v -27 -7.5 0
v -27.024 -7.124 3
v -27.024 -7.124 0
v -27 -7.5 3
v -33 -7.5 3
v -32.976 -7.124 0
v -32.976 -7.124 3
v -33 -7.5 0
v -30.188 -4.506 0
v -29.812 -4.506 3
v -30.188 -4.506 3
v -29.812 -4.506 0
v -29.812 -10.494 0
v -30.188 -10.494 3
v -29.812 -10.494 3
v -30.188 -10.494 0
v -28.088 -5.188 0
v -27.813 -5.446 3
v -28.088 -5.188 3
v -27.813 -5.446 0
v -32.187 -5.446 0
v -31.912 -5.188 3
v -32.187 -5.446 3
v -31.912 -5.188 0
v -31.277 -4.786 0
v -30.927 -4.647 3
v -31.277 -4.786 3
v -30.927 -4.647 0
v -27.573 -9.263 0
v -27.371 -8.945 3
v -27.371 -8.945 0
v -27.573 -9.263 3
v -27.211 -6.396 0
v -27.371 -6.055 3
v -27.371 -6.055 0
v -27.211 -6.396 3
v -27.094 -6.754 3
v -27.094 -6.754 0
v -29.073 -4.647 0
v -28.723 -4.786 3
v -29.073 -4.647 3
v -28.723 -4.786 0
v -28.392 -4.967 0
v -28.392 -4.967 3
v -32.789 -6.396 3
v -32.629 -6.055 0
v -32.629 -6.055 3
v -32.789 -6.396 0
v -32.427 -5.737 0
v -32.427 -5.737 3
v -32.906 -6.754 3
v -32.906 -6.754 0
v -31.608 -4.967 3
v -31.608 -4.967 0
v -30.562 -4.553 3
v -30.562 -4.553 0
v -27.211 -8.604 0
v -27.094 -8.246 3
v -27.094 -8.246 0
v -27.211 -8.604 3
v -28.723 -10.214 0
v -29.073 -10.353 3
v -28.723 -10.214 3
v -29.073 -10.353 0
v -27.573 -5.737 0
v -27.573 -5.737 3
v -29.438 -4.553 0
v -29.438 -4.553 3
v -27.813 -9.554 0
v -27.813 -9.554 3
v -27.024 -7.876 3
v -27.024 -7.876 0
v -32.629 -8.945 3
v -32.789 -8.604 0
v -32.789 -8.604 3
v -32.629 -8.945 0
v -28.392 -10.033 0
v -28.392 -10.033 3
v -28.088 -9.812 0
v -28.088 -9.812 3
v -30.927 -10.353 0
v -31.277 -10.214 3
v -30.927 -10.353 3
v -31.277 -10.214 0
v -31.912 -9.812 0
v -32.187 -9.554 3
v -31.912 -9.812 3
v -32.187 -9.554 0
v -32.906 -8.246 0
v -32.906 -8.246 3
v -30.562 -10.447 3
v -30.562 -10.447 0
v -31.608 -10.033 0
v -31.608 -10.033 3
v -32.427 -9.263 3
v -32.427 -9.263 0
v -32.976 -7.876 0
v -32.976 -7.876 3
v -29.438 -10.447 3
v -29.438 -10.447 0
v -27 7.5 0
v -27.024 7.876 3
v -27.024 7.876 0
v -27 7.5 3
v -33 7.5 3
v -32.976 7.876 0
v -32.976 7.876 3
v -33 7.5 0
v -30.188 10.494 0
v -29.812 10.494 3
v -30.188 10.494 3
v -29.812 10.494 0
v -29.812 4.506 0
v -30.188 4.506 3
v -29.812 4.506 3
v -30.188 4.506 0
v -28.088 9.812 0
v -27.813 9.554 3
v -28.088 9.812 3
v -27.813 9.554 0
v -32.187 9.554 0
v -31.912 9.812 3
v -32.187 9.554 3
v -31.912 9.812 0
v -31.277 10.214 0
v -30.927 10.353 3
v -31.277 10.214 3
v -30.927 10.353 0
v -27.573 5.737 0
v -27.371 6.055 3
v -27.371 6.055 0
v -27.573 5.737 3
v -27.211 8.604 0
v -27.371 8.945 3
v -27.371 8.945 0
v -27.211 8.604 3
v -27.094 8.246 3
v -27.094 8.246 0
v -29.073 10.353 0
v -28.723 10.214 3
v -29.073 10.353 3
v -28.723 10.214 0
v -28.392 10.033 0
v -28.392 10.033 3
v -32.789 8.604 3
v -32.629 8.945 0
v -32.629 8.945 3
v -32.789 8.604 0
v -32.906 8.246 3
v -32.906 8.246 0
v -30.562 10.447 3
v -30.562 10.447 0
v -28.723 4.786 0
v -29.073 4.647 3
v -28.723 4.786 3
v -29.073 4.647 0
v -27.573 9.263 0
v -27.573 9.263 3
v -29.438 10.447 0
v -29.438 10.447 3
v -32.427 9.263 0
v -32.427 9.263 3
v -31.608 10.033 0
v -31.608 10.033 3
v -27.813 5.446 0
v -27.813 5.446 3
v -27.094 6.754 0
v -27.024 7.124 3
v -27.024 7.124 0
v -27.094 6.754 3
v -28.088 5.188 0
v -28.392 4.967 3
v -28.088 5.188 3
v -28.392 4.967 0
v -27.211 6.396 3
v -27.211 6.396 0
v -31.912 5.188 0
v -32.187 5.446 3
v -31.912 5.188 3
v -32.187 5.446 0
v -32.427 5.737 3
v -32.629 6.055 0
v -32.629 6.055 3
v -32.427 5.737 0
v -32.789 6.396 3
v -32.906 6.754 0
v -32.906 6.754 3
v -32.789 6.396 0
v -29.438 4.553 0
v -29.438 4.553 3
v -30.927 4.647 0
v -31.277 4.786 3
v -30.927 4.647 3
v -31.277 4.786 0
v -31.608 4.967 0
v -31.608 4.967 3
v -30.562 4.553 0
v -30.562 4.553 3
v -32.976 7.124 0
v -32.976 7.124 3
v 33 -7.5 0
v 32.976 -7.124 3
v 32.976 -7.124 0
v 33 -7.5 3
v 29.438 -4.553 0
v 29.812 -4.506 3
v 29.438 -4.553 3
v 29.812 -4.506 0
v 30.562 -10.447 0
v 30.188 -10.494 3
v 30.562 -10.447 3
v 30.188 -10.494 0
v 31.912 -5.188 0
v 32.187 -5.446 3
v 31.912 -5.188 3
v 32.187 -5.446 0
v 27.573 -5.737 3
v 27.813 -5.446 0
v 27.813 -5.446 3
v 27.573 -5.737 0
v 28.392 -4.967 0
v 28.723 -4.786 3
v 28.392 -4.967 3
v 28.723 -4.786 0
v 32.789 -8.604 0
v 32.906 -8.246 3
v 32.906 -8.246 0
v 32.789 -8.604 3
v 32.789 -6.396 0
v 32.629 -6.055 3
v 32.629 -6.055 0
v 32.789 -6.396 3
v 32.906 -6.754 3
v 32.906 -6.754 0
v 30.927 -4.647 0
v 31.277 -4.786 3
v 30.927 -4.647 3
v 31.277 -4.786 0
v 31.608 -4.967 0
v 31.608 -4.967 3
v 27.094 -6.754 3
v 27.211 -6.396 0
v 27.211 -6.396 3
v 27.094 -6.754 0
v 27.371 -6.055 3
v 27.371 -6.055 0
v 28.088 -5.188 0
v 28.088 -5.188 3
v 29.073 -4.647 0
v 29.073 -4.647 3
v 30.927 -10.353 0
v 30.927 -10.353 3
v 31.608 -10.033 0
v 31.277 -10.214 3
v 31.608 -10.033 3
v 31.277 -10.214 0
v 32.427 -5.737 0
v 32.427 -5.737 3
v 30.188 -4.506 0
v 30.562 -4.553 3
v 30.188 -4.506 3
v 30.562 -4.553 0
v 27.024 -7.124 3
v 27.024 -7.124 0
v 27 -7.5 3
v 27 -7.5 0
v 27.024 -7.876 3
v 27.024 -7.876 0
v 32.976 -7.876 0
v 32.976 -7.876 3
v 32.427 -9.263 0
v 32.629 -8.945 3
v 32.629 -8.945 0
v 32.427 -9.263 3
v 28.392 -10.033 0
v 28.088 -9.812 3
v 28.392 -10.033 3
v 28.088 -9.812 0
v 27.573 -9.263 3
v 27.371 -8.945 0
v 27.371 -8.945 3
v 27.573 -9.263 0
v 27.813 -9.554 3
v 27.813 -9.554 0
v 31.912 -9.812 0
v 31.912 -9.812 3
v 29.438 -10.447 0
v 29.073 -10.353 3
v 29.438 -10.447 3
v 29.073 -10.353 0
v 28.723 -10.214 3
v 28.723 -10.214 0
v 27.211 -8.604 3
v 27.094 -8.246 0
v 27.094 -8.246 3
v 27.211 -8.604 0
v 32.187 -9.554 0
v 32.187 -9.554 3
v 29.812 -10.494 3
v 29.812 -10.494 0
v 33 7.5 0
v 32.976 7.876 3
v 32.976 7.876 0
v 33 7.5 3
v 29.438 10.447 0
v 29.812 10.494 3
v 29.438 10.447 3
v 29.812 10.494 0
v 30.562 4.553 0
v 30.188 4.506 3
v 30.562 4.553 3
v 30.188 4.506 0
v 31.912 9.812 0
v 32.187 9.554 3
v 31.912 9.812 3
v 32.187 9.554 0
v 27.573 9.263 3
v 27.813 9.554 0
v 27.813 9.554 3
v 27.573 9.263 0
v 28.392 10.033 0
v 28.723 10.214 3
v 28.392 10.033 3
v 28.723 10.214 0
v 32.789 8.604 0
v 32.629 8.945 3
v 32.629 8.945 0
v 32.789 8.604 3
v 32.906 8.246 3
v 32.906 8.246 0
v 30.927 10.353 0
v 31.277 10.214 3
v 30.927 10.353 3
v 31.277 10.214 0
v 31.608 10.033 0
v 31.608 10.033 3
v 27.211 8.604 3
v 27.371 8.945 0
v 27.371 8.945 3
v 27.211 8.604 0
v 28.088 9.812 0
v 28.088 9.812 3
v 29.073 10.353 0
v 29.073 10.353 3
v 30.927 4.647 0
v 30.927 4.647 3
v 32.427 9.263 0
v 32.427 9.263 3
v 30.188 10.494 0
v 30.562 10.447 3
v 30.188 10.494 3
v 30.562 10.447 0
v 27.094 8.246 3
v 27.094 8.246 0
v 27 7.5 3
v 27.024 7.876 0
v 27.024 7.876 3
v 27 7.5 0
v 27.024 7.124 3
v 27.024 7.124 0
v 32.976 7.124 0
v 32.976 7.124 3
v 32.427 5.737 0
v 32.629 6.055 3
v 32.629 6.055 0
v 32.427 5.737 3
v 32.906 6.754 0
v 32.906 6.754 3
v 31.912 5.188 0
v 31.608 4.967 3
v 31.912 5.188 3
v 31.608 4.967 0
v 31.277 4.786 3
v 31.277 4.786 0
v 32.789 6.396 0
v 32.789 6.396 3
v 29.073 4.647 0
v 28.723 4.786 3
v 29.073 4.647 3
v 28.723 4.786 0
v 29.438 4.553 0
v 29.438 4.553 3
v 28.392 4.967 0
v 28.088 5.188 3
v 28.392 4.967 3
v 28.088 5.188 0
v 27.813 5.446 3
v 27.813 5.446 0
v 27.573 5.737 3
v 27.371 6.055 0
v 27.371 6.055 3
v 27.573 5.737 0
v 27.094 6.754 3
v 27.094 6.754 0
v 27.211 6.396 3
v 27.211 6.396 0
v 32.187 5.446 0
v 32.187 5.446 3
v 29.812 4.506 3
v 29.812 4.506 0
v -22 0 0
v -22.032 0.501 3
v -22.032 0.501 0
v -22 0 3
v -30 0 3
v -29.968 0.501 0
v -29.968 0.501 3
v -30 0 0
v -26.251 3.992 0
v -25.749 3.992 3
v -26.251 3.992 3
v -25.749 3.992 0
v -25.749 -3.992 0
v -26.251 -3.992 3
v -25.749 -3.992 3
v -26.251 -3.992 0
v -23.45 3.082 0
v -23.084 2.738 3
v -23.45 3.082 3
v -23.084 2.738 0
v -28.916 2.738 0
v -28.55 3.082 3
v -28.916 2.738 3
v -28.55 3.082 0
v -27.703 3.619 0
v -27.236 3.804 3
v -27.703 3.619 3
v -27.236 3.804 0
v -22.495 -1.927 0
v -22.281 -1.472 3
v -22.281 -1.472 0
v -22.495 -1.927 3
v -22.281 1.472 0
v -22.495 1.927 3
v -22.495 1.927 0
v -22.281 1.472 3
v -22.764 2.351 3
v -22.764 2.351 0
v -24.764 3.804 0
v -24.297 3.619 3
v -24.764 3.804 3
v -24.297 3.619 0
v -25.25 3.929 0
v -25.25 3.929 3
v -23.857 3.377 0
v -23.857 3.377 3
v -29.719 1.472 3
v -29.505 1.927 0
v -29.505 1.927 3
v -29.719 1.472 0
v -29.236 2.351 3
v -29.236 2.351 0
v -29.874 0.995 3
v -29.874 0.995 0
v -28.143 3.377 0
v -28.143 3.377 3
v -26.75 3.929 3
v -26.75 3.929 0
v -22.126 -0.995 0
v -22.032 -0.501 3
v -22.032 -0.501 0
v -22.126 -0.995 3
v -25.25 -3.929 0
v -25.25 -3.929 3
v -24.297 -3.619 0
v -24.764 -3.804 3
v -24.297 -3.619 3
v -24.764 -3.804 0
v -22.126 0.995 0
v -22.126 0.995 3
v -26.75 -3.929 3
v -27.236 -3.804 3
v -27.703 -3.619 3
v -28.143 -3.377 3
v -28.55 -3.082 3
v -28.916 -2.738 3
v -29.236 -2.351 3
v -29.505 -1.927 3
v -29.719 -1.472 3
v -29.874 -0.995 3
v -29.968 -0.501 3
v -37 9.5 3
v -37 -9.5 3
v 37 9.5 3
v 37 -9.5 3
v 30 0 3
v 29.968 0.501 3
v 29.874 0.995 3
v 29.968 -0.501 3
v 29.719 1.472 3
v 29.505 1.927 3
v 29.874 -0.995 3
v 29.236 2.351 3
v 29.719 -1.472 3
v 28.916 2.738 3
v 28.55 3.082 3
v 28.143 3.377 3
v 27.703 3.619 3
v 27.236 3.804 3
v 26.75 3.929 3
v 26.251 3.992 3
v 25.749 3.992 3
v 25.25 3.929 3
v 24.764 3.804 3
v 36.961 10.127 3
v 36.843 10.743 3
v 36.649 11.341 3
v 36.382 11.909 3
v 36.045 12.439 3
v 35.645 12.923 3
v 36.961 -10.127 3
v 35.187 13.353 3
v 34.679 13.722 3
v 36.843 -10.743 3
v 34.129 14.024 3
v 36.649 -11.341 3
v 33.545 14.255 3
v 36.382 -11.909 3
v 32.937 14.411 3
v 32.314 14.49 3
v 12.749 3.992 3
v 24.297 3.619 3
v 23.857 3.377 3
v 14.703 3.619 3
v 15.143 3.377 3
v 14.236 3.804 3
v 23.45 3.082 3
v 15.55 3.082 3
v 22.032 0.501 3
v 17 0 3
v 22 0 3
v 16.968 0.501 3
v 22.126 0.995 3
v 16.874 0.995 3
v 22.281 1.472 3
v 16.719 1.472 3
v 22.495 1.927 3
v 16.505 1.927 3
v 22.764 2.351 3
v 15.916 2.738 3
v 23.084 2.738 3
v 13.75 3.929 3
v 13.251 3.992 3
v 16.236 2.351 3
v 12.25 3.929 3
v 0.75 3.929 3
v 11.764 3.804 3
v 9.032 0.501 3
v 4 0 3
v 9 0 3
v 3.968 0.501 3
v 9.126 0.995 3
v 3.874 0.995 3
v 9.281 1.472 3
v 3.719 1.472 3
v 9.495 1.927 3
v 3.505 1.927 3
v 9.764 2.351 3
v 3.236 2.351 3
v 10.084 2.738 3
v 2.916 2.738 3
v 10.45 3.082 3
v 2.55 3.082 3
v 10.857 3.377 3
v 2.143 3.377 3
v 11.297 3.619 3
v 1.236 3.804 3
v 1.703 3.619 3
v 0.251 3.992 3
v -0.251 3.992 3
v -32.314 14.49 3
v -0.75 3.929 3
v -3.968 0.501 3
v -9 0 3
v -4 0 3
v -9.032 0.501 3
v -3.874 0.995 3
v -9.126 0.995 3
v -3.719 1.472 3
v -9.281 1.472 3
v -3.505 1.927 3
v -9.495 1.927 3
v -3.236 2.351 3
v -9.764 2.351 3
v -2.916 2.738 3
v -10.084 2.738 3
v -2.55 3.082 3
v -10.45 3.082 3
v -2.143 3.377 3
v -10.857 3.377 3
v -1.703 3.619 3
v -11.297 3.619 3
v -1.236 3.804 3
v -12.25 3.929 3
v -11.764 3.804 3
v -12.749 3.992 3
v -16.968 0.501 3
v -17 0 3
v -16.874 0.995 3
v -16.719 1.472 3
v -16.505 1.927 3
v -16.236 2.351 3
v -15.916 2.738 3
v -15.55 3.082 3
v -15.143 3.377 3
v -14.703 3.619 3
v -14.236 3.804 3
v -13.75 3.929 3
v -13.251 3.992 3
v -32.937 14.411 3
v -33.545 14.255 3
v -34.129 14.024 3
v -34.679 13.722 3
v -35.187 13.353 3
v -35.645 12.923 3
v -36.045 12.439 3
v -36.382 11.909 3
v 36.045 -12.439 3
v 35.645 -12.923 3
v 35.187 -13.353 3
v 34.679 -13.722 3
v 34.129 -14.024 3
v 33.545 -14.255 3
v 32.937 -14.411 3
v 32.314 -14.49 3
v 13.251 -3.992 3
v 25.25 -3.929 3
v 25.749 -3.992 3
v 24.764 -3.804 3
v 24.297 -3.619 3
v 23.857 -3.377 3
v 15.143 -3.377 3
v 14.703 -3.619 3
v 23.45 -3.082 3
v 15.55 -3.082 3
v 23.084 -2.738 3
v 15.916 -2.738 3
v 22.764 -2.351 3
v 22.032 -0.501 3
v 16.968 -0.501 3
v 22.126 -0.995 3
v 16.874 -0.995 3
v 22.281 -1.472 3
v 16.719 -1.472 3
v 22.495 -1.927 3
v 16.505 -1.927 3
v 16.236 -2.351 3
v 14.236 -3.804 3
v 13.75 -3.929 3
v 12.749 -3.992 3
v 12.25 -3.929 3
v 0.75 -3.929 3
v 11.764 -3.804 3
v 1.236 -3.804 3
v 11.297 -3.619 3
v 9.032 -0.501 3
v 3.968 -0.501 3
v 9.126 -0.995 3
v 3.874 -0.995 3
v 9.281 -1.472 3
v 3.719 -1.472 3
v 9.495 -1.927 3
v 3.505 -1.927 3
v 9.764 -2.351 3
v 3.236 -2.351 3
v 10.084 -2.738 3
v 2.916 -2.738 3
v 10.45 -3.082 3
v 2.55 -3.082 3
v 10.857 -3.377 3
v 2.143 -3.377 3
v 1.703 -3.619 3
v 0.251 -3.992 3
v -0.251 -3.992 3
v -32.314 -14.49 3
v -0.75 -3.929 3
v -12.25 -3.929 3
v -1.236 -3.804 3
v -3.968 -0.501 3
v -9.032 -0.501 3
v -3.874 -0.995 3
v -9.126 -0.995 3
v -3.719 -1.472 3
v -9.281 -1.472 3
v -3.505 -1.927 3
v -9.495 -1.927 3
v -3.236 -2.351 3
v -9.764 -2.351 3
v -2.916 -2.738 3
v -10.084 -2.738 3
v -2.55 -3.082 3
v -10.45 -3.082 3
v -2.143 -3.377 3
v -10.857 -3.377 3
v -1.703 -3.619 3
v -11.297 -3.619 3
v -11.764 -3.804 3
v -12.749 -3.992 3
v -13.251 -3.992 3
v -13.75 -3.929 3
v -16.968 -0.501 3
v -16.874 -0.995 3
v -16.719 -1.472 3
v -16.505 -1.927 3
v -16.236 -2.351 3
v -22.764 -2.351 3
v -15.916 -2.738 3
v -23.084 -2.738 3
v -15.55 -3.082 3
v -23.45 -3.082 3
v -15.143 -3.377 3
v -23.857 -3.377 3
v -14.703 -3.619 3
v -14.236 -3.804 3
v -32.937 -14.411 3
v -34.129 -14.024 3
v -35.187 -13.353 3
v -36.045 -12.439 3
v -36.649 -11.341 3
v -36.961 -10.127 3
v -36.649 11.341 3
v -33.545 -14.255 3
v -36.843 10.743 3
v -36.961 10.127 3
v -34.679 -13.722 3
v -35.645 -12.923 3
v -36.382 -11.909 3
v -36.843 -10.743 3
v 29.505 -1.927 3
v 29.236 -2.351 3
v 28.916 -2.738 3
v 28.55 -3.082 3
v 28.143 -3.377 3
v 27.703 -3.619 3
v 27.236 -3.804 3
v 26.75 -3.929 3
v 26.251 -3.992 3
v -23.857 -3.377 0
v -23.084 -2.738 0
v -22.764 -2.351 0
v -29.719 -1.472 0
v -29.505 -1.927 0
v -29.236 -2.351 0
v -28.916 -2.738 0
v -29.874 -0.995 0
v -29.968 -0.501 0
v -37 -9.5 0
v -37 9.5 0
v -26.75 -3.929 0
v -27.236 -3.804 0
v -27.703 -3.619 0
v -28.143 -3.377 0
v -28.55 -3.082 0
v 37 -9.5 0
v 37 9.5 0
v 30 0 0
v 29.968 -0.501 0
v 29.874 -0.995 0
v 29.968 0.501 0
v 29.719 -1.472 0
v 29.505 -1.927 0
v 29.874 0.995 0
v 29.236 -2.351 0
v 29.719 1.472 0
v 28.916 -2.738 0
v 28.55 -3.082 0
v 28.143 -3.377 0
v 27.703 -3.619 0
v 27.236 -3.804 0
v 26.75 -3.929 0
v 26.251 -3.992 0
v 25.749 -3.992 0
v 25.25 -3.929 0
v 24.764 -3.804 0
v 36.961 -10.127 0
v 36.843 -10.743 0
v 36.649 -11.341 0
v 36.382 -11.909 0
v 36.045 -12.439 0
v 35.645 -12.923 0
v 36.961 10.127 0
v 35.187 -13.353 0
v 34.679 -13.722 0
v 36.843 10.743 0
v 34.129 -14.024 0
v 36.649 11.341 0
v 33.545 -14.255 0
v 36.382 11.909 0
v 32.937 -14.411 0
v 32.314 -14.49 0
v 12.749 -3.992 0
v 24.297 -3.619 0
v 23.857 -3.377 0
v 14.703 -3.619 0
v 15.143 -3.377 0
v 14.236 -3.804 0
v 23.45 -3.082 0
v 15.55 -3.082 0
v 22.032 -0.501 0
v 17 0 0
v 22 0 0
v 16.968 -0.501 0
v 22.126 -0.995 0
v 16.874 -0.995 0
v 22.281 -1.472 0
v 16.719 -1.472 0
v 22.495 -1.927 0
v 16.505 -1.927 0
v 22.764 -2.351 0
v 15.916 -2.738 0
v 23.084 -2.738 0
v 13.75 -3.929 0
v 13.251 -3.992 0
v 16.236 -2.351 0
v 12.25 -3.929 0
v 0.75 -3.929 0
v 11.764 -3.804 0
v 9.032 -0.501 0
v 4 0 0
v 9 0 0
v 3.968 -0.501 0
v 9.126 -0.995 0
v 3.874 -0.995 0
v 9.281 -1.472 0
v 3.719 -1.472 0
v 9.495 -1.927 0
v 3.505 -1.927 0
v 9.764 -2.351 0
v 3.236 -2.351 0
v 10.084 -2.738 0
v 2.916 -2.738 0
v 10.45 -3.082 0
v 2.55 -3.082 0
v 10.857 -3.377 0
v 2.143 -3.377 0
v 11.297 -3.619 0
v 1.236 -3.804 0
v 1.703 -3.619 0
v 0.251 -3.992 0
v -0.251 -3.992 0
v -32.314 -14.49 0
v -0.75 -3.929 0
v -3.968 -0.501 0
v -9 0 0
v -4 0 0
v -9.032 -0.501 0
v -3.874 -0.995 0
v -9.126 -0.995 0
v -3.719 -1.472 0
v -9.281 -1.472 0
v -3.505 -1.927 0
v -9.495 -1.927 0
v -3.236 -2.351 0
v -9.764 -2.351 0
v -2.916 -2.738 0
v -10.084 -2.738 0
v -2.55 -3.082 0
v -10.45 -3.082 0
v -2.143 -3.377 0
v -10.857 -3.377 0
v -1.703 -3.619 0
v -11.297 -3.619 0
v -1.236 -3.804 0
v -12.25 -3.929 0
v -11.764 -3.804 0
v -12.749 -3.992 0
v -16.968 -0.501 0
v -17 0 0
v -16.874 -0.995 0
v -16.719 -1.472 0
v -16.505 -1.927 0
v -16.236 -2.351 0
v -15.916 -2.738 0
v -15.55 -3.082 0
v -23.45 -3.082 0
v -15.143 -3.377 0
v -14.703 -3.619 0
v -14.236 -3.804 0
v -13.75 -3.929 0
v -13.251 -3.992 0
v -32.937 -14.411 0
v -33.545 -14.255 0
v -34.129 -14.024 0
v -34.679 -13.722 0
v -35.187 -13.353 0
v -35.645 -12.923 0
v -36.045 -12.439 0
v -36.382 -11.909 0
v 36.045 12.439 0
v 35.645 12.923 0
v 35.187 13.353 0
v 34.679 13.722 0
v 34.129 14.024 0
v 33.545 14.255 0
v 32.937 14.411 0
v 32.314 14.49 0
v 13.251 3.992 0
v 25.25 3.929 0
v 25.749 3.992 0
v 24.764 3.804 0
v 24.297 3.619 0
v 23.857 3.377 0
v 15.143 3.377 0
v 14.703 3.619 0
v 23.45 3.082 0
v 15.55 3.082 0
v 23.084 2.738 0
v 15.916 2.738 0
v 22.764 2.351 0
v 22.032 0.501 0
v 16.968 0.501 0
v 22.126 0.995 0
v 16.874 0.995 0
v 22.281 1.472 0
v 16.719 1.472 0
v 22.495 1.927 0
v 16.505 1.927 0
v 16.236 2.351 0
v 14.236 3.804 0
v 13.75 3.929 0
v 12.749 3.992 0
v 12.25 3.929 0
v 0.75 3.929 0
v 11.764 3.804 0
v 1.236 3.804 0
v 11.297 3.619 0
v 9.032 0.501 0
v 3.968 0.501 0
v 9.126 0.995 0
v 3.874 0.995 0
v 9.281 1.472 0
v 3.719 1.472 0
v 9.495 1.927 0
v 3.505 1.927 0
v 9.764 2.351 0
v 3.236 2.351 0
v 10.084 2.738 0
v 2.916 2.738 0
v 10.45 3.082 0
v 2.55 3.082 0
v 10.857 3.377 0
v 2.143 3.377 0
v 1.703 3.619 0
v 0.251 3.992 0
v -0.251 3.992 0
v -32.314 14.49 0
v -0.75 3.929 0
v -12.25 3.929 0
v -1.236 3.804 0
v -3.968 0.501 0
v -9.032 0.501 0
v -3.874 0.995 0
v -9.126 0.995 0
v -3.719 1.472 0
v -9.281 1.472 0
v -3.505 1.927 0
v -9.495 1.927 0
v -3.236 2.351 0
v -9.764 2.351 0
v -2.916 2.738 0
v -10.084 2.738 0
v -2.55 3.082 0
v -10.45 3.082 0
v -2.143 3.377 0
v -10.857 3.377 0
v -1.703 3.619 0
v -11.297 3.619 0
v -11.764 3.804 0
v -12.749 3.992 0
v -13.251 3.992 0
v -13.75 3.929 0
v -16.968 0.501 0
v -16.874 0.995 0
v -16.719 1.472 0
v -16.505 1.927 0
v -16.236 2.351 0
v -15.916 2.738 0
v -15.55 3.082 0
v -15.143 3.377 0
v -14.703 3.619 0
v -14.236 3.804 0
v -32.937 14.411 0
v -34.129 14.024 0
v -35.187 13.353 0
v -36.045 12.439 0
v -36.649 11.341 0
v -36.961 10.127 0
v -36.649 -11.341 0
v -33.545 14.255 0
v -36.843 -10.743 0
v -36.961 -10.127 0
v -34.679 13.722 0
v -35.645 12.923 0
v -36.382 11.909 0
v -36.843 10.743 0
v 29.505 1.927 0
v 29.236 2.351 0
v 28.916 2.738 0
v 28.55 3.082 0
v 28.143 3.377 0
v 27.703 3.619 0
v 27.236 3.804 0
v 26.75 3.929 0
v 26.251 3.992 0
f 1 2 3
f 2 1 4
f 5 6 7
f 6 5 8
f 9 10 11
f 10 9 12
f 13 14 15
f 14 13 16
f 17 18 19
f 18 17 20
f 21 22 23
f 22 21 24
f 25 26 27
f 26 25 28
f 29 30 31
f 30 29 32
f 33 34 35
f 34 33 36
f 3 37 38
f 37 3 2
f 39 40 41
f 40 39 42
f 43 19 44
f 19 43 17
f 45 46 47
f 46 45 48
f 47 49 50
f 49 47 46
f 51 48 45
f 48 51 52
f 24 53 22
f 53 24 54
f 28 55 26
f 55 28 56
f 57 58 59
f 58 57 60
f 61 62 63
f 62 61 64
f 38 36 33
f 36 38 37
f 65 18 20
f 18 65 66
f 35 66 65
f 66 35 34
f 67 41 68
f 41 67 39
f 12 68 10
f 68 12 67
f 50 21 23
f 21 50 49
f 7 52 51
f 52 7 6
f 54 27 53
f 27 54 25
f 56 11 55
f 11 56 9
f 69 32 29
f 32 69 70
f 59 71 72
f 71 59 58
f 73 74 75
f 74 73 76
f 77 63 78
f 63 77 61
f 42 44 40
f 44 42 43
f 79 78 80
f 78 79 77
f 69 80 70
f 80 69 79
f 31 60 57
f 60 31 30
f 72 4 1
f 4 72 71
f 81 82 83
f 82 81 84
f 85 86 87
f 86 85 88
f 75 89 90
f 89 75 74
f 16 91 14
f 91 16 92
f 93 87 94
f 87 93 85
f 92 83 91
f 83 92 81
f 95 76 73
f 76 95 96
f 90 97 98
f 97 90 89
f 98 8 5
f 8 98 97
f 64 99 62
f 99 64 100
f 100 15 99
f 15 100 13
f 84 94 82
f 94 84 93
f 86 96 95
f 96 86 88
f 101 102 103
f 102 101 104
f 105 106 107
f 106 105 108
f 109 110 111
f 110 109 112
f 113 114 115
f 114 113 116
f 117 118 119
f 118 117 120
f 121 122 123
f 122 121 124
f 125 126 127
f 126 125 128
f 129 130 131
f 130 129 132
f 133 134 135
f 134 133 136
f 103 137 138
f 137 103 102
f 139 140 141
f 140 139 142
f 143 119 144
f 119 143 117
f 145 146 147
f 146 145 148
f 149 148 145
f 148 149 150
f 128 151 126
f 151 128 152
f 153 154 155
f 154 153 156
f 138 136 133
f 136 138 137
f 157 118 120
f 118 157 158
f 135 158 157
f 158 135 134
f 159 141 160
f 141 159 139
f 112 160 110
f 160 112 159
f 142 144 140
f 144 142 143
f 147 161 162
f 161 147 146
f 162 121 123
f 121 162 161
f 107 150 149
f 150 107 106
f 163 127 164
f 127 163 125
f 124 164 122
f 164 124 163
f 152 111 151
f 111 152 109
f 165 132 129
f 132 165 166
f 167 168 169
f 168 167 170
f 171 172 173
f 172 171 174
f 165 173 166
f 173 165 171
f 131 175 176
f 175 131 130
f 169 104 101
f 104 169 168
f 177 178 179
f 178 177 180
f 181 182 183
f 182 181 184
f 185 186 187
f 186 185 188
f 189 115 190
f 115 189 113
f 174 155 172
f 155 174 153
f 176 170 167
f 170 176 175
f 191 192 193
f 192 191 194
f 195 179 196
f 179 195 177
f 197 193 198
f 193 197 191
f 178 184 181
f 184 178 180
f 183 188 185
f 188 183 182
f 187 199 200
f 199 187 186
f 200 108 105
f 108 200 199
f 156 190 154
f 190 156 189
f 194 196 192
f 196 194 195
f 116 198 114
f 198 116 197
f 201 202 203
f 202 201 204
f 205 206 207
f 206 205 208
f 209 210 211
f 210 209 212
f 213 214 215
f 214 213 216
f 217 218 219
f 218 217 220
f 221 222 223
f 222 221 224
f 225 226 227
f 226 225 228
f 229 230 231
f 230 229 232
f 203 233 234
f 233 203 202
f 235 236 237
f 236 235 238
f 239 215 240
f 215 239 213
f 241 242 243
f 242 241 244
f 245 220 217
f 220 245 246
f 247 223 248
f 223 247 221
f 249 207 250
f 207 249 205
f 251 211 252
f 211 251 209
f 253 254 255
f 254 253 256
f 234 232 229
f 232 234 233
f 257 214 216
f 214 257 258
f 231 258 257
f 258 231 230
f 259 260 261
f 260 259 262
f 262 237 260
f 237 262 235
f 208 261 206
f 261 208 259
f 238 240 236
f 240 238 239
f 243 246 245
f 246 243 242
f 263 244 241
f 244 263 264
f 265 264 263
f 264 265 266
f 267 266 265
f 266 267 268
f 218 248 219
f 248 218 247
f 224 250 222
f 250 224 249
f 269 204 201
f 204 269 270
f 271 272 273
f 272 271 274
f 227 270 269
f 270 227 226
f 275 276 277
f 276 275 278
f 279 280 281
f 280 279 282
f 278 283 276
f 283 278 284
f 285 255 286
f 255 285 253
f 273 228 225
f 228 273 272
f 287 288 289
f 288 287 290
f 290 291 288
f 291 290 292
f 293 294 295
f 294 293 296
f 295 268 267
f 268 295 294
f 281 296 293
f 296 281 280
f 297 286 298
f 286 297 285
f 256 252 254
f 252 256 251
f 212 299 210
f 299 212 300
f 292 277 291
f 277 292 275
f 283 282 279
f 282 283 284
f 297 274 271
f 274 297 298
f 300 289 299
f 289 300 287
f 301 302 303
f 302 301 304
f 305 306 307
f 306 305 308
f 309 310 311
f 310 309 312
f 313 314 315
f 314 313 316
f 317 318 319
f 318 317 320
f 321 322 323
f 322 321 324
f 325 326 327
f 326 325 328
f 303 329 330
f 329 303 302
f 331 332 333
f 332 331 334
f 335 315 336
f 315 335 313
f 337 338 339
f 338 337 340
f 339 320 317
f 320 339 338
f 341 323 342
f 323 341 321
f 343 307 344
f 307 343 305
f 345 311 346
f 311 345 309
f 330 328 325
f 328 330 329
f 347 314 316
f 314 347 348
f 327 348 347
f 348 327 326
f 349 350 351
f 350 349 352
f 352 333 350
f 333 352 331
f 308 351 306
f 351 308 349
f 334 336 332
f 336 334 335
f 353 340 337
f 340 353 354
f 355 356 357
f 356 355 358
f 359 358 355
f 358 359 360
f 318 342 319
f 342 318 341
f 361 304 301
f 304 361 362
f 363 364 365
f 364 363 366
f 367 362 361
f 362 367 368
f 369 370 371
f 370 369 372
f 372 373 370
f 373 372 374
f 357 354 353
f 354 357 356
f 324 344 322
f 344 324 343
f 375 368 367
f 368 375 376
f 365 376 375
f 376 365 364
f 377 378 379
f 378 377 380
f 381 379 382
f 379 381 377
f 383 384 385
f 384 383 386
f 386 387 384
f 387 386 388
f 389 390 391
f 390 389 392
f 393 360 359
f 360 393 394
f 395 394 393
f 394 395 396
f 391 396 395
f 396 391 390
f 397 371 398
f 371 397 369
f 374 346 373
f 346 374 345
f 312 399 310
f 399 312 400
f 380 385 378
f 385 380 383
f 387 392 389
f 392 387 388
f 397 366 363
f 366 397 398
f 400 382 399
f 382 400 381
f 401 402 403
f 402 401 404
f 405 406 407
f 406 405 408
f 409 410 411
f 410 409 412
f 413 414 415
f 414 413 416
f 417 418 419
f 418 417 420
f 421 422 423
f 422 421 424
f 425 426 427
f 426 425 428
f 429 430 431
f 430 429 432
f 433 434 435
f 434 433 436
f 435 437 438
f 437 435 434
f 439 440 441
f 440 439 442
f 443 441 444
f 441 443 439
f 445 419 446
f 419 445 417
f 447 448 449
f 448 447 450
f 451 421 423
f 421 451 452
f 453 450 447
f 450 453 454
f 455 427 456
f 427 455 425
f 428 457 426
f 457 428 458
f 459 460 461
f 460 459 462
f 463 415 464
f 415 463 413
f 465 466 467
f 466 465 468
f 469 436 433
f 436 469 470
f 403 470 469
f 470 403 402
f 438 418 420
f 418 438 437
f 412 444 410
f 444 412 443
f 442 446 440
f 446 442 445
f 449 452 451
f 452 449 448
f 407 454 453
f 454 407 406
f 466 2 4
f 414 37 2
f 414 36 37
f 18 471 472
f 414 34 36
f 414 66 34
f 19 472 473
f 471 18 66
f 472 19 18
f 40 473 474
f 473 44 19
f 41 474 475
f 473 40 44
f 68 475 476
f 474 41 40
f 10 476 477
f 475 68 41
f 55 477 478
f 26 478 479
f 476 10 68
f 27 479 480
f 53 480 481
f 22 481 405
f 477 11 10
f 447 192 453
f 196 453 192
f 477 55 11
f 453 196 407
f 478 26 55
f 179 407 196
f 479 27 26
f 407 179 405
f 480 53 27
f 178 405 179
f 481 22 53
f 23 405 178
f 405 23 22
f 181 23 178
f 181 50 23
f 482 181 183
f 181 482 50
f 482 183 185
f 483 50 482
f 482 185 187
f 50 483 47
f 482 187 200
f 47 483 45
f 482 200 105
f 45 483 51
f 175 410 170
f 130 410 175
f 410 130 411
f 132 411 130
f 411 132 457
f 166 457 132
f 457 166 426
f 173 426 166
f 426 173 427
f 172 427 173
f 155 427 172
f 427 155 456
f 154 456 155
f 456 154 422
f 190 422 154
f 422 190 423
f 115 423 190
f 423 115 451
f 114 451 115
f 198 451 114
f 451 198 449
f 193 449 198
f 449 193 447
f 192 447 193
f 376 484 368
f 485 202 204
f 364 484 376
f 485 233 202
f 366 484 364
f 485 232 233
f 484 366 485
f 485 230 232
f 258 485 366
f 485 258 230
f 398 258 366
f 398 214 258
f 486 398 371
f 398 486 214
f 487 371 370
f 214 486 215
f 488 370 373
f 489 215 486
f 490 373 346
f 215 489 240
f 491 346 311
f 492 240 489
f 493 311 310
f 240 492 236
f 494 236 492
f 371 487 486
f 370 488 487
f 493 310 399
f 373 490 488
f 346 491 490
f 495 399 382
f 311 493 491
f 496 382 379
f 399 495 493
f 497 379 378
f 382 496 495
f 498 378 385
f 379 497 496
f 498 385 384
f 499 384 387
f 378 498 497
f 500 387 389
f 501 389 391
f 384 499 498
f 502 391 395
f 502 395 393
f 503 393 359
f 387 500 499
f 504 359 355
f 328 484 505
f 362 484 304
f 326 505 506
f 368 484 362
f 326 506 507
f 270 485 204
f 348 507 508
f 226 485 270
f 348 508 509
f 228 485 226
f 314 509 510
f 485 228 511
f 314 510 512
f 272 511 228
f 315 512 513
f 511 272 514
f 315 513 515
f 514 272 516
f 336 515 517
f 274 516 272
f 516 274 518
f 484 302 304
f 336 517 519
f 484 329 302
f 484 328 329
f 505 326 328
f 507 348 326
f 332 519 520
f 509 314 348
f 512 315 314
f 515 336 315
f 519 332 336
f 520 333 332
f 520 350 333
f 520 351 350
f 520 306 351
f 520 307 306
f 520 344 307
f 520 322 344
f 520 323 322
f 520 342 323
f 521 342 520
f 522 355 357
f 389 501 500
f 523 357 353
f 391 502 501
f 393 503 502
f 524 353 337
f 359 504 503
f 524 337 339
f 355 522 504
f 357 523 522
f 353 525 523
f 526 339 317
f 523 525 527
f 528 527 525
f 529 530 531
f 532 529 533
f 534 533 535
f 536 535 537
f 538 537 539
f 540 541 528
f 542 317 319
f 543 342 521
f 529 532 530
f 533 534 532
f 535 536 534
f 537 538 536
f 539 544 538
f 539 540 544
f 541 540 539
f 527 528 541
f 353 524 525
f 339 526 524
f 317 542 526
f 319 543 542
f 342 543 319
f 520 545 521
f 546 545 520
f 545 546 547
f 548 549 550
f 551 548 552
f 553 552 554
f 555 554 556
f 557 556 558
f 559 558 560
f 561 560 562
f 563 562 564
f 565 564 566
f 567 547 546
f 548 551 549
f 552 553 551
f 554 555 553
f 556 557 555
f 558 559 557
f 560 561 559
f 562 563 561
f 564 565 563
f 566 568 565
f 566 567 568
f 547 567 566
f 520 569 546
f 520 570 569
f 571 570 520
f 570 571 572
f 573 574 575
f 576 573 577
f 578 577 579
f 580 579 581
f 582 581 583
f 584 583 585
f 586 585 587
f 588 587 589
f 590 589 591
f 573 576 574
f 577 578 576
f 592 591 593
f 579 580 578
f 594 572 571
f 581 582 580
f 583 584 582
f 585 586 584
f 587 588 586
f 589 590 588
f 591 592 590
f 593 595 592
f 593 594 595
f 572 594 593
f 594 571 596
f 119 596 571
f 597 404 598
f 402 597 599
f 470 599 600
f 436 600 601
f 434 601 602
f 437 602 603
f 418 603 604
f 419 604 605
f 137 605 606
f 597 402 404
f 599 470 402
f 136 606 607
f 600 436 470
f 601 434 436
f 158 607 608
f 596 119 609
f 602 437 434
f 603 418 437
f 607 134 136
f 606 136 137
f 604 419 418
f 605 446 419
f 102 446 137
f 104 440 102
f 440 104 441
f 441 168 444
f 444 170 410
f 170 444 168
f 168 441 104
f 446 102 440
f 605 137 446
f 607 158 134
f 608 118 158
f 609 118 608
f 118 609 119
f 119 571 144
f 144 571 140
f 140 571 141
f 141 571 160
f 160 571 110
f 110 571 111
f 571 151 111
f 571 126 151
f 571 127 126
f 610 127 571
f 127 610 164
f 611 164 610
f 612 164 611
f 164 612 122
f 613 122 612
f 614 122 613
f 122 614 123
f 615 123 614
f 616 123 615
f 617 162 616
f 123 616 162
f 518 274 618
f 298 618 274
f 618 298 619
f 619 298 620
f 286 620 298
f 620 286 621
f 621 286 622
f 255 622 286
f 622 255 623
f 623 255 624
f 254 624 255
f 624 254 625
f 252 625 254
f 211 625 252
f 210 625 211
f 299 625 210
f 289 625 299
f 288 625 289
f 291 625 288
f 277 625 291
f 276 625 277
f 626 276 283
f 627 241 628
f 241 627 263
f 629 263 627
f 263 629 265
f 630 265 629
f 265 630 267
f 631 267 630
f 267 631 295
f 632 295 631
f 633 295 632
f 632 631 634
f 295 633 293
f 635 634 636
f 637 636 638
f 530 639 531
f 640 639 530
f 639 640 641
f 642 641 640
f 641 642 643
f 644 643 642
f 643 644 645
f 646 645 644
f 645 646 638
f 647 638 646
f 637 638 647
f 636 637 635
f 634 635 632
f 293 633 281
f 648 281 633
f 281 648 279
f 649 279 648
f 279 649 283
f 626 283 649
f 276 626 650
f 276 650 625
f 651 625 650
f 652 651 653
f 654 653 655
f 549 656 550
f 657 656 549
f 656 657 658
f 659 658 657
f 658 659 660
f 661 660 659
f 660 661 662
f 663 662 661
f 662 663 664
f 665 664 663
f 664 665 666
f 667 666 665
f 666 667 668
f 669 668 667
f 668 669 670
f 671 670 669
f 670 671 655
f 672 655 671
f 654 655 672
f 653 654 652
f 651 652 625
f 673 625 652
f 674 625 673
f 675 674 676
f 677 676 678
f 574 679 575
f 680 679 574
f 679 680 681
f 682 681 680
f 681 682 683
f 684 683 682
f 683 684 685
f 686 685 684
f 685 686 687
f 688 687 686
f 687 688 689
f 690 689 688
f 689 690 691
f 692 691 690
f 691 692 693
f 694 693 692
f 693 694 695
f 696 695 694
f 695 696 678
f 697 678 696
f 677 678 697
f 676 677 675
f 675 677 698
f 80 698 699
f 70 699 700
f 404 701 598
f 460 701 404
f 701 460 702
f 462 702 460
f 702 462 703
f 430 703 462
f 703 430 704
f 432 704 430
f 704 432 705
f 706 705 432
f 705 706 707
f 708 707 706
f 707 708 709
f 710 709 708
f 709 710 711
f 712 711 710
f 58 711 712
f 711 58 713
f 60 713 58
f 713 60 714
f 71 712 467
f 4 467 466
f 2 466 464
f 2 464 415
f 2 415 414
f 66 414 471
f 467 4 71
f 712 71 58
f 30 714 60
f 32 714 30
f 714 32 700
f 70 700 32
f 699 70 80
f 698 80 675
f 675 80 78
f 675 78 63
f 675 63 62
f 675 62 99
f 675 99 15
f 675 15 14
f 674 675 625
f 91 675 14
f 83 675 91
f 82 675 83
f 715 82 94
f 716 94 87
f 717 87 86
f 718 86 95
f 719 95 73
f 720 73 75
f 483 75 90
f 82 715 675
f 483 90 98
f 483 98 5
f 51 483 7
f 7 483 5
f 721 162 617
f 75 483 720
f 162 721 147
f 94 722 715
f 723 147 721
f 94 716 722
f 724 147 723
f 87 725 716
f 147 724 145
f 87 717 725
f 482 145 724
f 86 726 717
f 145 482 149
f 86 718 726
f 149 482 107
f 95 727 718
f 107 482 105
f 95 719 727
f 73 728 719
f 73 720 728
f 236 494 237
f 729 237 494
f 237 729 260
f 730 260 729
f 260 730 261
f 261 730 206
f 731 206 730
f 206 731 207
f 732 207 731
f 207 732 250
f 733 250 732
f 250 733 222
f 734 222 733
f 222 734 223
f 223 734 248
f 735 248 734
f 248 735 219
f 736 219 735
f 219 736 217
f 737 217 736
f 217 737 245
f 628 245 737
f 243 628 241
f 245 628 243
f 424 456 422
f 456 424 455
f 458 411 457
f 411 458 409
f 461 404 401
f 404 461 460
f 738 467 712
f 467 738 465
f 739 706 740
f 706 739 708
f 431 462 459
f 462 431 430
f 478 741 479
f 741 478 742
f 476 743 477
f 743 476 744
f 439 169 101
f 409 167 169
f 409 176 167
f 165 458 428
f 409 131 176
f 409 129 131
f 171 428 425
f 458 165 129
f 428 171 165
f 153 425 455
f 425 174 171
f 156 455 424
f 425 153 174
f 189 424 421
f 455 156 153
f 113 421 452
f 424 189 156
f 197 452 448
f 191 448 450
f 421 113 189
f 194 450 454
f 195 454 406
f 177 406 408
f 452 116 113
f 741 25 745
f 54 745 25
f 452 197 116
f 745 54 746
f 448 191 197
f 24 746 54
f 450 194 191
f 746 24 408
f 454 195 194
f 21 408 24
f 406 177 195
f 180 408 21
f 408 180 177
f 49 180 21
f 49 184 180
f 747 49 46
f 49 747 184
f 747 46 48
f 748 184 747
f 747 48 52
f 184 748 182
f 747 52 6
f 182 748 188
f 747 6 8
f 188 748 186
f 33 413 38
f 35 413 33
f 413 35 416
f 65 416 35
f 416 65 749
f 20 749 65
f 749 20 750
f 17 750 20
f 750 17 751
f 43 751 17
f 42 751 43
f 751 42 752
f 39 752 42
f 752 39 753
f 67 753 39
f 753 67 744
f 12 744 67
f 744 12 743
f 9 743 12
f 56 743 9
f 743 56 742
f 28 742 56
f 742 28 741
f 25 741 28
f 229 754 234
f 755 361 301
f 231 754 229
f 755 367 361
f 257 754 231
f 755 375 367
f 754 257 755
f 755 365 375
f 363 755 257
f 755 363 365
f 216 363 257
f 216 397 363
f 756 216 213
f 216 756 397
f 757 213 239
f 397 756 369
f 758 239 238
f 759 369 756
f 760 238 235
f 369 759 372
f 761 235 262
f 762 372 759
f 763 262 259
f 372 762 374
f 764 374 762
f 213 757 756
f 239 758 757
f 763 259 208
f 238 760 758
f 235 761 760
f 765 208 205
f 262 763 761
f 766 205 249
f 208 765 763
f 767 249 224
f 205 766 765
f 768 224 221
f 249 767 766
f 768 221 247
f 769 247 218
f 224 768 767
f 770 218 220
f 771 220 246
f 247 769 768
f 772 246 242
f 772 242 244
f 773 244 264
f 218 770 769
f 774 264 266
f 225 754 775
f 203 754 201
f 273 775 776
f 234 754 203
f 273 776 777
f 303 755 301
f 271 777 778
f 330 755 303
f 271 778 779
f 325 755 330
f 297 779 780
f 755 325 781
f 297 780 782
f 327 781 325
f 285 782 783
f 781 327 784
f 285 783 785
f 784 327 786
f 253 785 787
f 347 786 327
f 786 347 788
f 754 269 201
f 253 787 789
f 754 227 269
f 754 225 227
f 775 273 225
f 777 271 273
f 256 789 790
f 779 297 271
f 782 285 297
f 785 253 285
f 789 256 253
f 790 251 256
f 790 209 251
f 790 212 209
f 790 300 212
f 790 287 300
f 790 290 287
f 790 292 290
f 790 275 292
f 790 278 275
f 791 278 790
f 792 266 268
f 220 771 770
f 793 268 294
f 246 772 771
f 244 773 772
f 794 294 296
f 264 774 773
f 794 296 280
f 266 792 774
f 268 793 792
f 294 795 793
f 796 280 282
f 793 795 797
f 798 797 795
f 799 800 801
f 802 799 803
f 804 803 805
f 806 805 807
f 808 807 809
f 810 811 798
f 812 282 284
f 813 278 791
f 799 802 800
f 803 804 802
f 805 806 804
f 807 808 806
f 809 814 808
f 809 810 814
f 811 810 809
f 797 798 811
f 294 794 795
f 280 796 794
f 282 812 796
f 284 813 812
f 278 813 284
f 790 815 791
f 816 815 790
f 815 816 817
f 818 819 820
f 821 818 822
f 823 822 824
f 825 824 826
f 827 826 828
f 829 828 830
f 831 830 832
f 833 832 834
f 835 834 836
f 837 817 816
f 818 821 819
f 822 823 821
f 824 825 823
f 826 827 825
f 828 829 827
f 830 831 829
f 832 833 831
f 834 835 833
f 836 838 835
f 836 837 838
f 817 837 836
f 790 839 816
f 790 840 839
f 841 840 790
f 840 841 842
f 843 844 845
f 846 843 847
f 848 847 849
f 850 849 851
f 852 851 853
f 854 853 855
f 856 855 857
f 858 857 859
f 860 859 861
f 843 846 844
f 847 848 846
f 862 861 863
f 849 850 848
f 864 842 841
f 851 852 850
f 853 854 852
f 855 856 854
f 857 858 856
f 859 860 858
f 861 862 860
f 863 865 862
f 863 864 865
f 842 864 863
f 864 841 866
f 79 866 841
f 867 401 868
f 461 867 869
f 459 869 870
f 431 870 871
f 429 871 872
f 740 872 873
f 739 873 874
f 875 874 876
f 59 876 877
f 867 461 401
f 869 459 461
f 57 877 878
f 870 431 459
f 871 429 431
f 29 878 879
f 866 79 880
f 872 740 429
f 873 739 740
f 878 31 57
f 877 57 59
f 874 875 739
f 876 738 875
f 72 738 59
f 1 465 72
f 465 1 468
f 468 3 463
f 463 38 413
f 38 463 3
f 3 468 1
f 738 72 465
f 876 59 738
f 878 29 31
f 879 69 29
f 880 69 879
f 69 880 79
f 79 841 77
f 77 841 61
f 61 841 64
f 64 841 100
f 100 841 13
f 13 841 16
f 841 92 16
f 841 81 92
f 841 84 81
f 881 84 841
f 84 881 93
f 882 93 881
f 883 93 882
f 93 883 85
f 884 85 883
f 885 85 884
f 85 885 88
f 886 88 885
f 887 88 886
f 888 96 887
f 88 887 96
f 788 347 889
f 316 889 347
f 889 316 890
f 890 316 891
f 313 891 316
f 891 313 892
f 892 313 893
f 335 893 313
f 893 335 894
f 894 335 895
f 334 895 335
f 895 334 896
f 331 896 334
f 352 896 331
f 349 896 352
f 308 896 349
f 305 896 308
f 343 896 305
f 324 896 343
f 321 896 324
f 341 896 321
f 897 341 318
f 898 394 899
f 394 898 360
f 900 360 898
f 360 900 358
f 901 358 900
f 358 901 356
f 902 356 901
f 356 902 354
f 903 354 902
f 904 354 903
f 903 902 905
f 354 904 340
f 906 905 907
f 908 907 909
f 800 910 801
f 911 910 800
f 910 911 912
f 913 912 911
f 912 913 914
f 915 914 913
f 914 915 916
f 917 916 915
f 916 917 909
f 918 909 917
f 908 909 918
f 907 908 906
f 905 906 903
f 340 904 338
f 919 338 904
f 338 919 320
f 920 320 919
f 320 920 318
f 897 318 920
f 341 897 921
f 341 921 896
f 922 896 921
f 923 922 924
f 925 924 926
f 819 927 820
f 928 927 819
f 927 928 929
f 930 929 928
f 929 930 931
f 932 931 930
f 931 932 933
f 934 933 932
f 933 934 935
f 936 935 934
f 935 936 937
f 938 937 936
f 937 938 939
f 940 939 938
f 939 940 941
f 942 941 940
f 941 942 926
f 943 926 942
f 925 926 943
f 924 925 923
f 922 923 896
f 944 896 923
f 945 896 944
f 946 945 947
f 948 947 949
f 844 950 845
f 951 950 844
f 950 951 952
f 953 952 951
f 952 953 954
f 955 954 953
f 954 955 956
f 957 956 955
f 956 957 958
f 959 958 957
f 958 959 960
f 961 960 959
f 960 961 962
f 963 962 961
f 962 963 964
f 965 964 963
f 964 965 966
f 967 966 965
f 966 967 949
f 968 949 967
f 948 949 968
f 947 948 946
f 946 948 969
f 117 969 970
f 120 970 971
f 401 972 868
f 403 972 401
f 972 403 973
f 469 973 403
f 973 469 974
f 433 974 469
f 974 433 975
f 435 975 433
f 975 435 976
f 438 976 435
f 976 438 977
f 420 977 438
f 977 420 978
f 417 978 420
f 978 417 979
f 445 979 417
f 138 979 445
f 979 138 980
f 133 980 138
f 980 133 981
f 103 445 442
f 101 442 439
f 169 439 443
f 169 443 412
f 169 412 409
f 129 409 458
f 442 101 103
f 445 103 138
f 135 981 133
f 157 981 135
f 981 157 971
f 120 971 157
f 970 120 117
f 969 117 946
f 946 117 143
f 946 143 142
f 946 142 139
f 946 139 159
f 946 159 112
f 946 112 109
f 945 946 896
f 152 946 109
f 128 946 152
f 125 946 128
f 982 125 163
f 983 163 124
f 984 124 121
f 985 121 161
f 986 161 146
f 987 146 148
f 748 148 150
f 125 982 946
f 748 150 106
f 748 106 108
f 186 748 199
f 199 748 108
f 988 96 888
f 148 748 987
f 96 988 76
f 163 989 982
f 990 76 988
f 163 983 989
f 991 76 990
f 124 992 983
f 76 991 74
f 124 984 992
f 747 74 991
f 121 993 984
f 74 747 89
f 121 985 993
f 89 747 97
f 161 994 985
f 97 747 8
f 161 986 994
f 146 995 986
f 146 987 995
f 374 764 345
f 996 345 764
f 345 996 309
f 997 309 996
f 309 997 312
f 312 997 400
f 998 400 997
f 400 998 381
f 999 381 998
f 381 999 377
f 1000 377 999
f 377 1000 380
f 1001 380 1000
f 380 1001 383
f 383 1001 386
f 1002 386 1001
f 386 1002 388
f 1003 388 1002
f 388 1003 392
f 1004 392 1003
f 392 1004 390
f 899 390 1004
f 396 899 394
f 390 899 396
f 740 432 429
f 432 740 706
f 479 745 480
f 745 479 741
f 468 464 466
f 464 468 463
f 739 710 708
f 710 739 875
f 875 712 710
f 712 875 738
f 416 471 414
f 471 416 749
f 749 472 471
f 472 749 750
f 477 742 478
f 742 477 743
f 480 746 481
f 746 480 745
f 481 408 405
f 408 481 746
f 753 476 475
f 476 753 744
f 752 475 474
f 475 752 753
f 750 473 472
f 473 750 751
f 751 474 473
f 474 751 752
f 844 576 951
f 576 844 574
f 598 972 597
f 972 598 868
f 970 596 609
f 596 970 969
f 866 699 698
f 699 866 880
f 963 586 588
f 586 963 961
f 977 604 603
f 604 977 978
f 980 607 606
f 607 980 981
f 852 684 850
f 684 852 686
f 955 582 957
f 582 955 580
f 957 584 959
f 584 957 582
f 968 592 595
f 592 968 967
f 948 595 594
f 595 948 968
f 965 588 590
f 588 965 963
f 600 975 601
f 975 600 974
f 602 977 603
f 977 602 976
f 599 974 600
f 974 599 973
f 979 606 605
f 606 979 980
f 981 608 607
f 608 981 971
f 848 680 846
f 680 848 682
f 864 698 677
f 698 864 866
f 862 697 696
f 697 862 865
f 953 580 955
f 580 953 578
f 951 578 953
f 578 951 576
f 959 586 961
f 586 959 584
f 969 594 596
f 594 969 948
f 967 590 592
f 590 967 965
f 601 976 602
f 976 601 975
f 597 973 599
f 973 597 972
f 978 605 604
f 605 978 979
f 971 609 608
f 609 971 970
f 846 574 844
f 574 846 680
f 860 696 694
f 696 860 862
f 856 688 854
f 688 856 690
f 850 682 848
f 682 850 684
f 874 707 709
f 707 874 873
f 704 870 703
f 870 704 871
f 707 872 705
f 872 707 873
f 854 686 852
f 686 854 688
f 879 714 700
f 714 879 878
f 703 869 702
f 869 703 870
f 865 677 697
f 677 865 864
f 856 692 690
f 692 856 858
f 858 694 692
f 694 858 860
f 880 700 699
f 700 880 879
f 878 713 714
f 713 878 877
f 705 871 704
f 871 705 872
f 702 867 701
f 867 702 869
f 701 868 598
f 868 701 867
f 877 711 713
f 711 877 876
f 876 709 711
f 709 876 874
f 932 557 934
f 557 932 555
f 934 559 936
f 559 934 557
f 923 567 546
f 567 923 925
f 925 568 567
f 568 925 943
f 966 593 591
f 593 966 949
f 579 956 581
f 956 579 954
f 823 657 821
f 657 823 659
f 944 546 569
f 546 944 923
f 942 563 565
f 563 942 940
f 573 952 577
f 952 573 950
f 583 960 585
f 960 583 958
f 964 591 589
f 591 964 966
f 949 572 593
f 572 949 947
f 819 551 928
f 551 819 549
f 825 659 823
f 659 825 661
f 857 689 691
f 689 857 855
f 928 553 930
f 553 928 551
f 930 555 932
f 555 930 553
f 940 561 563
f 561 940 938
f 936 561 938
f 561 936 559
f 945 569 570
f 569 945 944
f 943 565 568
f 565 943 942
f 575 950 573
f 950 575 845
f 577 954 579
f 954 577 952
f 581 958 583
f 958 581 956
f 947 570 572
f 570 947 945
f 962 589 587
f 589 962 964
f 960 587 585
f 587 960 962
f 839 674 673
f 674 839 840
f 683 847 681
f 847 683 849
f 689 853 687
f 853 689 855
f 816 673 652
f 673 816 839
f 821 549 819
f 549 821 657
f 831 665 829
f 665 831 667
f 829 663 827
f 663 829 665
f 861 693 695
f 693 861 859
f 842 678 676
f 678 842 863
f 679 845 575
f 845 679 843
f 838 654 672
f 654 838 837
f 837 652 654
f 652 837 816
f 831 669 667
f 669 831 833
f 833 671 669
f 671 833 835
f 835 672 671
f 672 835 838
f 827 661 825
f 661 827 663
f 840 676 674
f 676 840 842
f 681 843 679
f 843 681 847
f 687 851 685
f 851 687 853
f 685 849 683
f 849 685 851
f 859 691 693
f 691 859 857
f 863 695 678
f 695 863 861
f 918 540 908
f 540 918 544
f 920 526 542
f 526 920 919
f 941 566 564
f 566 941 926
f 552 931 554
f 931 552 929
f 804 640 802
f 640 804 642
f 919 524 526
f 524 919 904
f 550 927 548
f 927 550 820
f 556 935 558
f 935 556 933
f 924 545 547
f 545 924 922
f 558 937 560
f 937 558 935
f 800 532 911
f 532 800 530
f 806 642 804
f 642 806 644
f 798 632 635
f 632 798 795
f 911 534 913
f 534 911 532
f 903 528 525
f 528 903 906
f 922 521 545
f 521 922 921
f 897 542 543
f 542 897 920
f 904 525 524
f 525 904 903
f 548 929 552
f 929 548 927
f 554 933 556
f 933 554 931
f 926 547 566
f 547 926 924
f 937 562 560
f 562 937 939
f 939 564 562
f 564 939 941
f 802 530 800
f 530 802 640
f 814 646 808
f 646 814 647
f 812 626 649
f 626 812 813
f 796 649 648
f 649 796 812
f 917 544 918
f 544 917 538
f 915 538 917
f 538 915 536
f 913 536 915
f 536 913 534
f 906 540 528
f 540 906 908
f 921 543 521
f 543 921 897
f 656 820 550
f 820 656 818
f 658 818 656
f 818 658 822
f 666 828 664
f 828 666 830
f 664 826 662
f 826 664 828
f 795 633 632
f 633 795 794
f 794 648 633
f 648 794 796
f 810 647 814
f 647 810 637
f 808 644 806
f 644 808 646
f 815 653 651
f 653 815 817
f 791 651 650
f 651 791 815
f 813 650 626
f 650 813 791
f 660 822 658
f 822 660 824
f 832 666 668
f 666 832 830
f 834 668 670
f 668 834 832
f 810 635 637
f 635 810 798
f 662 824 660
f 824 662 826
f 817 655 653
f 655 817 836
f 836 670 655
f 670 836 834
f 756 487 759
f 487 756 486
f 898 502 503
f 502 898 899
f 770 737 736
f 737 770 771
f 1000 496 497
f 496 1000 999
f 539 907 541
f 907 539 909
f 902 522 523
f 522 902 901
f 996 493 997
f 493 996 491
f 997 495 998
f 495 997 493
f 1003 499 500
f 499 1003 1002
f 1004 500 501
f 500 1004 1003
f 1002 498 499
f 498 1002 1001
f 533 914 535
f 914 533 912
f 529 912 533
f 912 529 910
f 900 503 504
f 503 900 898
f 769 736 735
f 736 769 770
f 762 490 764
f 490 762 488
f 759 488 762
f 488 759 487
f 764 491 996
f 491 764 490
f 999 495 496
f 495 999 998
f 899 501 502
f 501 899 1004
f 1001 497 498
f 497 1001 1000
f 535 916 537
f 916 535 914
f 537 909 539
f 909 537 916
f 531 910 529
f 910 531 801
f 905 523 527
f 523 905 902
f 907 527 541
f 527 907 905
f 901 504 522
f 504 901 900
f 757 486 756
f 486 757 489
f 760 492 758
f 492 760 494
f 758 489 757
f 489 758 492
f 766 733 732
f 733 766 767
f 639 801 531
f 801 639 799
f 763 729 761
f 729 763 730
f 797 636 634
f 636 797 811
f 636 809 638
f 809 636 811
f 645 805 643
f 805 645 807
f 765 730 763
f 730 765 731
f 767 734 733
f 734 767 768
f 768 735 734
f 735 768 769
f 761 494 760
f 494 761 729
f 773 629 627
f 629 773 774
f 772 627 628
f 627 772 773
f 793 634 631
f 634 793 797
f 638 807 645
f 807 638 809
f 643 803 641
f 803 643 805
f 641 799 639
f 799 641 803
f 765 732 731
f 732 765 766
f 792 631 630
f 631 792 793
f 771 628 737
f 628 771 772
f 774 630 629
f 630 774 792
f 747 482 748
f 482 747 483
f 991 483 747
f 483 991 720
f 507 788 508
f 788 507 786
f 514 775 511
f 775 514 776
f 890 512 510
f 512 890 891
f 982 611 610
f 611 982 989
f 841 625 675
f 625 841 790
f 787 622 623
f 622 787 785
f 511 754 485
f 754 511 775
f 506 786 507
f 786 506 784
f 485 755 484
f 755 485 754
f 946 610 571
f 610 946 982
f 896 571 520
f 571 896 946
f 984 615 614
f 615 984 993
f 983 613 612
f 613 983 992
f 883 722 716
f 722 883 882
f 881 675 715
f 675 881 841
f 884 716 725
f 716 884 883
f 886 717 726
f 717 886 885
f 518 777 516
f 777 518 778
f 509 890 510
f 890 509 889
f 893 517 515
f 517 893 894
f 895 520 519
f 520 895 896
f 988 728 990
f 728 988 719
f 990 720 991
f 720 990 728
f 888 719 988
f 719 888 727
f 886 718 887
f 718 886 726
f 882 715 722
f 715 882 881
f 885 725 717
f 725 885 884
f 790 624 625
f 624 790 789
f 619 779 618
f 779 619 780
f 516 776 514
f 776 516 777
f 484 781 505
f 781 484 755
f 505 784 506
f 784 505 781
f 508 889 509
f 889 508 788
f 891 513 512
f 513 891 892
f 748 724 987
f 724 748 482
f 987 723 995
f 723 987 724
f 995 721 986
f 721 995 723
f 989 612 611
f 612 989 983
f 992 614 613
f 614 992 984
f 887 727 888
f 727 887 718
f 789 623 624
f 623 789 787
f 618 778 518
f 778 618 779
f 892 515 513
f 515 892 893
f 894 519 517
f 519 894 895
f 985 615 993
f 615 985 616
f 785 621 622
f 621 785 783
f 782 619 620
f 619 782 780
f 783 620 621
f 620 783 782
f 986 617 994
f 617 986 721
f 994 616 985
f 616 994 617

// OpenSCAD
$fn = 50;


difference() {
	union() {
		hull() {
			translate(v = [-32.0000000000, 9.5000000000, 0]) {
				cylinder(h = 3, r = 5);
			}
			translate(v = [32.0000000000, 9.5000000000, 0]) {
				cylinder(h = 3, r = 5);
			}
			translate(v = [-32.0000000000, -9.5000000000, 0]) {
				cylinder(h = 3, r = 5);
			}
			translate(v = [32.0000000000, -9.5000000000, 0]) {
				cylinder(h = 3, r = 5);
			}
		}
	}
	union() {
		#translate(v = [-30.0000000000, -7.5000000000, -100.0000000000]) {
			cylinder(h = 200, r = 3.0000000000);
		}
		#translate(v = [-30.0000000000, 7.5000000000, -100.0000000000]) {
			cylinder(h = 200, r = 3.0000000000);
		}
		#translate(v = [30.0000000000, -7.5000000000, -100.0000000000]) {
			cylinder(h = 200, r = 3.0000000000);
		}
		#translate(v = [30.0000000000, 7.5000000000, -100.0000000000]) {
			cylinder(h = 200, r = 3.0000000000);
		}
		#translate(v = [-26.0000000000, 0, 0]) {
			cylinder(h = 3, r = 4.0000000000);
		}
		#translate(v = [-13.0000000000, 0, 0]) {
			cylinder(h = 3, r = 4.0000000000);
		}
		#cylinder(h = 3, r = 4.0000000000);
		#translate(v = [13.0000000000, 0, 0]) {
			cylinder(h = 3, r = 4.0000000000);
		}
		#translate(v = [26.0000000000, 0, 0]) {
			cylinder(h = 3, r = 4.0000000000);
		}
	}
}
